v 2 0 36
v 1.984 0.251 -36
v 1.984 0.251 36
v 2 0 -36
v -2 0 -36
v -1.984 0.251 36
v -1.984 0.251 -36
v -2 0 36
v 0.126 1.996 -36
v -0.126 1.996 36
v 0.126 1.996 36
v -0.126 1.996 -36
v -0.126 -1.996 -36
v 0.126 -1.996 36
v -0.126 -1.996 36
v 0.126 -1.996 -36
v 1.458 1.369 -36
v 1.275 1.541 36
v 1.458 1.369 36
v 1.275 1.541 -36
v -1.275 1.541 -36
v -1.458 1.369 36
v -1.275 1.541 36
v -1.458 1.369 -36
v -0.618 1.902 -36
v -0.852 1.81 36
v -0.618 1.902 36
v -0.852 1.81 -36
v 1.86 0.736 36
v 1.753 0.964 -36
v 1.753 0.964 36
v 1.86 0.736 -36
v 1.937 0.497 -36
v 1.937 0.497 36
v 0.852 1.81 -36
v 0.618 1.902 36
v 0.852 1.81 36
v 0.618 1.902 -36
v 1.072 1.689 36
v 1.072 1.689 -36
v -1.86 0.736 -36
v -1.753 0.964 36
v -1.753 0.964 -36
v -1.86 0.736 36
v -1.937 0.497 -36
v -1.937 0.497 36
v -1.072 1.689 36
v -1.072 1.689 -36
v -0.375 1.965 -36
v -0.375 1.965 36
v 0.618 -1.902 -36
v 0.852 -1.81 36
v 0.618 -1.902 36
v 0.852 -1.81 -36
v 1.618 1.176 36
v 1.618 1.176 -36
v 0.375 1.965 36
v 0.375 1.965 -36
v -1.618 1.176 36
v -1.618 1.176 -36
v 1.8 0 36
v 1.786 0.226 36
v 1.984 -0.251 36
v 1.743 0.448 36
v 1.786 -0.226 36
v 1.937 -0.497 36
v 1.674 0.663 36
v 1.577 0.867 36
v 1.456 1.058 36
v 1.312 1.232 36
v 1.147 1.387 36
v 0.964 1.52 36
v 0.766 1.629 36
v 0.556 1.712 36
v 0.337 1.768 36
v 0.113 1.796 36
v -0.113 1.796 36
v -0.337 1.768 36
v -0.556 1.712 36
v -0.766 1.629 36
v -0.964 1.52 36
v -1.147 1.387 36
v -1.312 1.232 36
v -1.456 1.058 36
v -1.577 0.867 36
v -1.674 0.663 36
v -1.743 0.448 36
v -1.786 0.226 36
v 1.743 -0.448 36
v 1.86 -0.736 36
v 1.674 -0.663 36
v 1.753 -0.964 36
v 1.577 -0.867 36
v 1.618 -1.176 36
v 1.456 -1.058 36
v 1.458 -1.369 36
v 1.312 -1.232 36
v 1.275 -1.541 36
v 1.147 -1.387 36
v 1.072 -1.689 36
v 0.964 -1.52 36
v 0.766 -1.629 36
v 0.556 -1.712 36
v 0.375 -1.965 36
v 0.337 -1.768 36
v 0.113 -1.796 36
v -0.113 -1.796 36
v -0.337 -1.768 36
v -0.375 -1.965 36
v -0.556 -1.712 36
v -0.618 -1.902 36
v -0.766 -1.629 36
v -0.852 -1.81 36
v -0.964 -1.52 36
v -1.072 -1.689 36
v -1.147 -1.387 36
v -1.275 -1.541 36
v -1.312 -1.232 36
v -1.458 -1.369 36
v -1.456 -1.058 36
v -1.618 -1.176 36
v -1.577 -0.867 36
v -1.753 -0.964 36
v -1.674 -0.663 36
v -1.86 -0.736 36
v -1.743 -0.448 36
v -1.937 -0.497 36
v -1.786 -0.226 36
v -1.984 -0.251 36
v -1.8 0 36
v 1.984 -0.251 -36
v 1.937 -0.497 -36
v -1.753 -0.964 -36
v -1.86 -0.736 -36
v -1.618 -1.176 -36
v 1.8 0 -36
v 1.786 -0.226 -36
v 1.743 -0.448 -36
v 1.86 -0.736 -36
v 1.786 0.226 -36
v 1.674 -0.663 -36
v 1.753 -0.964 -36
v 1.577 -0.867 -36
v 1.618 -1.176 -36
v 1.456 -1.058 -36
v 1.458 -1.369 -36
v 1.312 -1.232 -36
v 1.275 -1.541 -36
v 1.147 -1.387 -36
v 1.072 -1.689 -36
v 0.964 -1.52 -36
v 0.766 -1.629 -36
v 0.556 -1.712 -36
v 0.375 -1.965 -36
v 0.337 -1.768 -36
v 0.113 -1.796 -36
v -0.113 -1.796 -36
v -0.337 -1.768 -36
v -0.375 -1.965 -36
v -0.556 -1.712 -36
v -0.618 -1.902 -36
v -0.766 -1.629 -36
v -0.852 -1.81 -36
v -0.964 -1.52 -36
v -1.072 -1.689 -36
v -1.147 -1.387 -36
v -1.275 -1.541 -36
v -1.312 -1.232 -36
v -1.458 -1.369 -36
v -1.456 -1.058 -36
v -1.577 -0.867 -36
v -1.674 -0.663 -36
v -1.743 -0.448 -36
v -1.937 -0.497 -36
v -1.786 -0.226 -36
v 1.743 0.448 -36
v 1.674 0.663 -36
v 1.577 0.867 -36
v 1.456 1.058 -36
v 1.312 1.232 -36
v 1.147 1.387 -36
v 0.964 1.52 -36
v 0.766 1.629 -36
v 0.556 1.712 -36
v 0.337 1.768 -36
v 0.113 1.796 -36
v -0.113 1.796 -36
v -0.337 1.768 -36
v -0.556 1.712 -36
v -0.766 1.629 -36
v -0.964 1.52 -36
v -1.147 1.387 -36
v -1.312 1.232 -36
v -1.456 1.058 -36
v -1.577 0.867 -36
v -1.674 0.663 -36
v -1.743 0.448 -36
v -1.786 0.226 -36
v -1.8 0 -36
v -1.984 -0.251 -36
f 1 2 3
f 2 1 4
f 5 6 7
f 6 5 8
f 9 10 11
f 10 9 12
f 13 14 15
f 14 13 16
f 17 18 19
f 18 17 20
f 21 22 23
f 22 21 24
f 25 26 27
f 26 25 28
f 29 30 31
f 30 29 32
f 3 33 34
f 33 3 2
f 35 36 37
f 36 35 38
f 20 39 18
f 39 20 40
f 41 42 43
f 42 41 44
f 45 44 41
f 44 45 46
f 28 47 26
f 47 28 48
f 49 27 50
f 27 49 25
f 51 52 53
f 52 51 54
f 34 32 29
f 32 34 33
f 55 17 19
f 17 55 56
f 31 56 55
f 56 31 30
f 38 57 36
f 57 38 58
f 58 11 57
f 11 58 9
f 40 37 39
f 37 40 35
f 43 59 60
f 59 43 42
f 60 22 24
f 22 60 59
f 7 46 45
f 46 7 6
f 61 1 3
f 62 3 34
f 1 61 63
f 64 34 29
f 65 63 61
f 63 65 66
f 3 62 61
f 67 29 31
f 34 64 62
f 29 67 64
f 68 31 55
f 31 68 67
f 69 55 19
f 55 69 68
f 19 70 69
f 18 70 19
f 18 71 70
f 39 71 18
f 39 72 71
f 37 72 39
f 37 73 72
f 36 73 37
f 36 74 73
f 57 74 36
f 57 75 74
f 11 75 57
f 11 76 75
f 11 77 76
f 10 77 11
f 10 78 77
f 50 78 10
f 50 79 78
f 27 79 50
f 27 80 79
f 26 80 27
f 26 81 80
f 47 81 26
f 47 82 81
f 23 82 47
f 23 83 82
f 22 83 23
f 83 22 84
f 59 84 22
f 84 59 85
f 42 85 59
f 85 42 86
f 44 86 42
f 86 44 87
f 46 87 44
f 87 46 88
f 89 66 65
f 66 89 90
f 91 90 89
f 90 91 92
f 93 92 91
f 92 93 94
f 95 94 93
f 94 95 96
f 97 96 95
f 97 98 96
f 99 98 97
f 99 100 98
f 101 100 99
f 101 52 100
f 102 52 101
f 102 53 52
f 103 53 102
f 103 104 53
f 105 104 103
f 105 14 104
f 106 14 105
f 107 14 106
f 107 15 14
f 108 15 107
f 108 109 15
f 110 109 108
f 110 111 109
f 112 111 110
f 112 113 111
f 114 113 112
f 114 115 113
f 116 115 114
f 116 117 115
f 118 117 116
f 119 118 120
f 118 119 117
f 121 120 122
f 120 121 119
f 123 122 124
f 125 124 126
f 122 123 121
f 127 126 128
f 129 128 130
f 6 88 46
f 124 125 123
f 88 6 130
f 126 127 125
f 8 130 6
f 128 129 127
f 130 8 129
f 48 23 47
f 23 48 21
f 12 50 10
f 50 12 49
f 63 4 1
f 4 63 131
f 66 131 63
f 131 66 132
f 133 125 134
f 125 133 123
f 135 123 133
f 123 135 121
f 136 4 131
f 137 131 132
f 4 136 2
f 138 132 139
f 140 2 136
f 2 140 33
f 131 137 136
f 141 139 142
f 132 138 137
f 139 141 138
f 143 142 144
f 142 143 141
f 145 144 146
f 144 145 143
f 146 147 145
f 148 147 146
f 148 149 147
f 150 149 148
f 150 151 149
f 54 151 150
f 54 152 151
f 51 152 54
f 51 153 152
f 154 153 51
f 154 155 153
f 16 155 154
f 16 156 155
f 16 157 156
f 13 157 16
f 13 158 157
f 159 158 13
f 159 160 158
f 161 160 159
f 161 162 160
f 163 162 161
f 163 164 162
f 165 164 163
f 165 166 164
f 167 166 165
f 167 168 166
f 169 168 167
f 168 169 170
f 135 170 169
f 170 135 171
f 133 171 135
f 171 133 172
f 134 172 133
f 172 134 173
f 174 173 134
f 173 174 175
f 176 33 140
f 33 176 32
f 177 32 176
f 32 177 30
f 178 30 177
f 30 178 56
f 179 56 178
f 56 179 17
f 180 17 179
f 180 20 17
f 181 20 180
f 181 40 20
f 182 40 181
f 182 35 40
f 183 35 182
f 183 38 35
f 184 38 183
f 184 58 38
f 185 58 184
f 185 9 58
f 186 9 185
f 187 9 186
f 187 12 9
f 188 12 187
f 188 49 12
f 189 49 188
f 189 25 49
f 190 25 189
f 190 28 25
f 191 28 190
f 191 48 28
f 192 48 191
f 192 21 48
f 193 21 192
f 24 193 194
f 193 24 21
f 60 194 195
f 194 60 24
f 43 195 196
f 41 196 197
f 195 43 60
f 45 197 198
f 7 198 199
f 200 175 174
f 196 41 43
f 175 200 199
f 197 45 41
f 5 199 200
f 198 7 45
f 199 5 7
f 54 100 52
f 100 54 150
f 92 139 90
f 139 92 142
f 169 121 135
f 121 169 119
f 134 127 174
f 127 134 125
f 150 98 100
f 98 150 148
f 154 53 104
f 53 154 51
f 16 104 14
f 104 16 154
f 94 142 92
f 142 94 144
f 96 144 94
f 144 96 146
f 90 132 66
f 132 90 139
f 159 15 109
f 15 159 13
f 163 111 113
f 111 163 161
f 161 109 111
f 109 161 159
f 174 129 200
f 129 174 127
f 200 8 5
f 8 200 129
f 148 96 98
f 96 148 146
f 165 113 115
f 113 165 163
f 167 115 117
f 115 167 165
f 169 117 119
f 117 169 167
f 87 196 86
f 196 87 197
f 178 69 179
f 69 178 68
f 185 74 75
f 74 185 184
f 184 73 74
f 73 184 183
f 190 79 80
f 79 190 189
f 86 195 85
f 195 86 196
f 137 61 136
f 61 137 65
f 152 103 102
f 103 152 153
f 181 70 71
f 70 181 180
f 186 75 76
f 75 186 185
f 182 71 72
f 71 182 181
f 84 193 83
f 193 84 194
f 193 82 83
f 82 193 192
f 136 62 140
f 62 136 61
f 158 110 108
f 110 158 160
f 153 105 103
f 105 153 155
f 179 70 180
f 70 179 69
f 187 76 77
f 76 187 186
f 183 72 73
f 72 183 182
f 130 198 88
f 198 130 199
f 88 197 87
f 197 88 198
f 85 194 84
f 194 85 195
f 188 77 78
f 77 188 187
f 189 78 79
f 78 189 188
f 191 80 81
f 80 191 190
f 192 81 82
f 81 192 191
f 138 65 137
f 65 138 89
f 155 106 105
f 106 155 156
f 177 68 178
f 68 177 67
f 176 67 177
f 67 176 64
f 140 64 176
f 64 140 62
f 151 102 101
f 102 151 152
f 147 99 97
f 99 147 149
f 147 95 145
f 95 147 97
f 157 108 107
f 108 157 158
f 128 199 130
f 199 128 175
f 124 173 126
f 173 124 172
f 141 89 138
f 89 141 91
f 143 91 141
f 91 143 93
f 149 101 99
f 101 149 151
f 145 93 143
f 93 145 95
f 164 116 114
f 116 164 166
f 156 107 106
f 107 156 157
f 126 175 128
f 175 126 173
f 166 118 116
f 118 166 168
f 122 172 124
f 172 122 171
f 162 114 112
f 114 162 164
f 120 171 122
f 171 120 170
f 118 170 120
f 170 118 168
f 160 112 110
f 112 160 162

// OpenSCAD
$fn = 50;


difference() {
	union() {
		translate(v = [0, 0, -36.0000000000]) {
			cylinder(h = 72, r = 2.0000000000);
		}
	}
	union() {
		translate(v = [0, 0, -100.0000000000]) {
			cylinder(h = 200, r = 1.8000000000);
		}
	}
}
